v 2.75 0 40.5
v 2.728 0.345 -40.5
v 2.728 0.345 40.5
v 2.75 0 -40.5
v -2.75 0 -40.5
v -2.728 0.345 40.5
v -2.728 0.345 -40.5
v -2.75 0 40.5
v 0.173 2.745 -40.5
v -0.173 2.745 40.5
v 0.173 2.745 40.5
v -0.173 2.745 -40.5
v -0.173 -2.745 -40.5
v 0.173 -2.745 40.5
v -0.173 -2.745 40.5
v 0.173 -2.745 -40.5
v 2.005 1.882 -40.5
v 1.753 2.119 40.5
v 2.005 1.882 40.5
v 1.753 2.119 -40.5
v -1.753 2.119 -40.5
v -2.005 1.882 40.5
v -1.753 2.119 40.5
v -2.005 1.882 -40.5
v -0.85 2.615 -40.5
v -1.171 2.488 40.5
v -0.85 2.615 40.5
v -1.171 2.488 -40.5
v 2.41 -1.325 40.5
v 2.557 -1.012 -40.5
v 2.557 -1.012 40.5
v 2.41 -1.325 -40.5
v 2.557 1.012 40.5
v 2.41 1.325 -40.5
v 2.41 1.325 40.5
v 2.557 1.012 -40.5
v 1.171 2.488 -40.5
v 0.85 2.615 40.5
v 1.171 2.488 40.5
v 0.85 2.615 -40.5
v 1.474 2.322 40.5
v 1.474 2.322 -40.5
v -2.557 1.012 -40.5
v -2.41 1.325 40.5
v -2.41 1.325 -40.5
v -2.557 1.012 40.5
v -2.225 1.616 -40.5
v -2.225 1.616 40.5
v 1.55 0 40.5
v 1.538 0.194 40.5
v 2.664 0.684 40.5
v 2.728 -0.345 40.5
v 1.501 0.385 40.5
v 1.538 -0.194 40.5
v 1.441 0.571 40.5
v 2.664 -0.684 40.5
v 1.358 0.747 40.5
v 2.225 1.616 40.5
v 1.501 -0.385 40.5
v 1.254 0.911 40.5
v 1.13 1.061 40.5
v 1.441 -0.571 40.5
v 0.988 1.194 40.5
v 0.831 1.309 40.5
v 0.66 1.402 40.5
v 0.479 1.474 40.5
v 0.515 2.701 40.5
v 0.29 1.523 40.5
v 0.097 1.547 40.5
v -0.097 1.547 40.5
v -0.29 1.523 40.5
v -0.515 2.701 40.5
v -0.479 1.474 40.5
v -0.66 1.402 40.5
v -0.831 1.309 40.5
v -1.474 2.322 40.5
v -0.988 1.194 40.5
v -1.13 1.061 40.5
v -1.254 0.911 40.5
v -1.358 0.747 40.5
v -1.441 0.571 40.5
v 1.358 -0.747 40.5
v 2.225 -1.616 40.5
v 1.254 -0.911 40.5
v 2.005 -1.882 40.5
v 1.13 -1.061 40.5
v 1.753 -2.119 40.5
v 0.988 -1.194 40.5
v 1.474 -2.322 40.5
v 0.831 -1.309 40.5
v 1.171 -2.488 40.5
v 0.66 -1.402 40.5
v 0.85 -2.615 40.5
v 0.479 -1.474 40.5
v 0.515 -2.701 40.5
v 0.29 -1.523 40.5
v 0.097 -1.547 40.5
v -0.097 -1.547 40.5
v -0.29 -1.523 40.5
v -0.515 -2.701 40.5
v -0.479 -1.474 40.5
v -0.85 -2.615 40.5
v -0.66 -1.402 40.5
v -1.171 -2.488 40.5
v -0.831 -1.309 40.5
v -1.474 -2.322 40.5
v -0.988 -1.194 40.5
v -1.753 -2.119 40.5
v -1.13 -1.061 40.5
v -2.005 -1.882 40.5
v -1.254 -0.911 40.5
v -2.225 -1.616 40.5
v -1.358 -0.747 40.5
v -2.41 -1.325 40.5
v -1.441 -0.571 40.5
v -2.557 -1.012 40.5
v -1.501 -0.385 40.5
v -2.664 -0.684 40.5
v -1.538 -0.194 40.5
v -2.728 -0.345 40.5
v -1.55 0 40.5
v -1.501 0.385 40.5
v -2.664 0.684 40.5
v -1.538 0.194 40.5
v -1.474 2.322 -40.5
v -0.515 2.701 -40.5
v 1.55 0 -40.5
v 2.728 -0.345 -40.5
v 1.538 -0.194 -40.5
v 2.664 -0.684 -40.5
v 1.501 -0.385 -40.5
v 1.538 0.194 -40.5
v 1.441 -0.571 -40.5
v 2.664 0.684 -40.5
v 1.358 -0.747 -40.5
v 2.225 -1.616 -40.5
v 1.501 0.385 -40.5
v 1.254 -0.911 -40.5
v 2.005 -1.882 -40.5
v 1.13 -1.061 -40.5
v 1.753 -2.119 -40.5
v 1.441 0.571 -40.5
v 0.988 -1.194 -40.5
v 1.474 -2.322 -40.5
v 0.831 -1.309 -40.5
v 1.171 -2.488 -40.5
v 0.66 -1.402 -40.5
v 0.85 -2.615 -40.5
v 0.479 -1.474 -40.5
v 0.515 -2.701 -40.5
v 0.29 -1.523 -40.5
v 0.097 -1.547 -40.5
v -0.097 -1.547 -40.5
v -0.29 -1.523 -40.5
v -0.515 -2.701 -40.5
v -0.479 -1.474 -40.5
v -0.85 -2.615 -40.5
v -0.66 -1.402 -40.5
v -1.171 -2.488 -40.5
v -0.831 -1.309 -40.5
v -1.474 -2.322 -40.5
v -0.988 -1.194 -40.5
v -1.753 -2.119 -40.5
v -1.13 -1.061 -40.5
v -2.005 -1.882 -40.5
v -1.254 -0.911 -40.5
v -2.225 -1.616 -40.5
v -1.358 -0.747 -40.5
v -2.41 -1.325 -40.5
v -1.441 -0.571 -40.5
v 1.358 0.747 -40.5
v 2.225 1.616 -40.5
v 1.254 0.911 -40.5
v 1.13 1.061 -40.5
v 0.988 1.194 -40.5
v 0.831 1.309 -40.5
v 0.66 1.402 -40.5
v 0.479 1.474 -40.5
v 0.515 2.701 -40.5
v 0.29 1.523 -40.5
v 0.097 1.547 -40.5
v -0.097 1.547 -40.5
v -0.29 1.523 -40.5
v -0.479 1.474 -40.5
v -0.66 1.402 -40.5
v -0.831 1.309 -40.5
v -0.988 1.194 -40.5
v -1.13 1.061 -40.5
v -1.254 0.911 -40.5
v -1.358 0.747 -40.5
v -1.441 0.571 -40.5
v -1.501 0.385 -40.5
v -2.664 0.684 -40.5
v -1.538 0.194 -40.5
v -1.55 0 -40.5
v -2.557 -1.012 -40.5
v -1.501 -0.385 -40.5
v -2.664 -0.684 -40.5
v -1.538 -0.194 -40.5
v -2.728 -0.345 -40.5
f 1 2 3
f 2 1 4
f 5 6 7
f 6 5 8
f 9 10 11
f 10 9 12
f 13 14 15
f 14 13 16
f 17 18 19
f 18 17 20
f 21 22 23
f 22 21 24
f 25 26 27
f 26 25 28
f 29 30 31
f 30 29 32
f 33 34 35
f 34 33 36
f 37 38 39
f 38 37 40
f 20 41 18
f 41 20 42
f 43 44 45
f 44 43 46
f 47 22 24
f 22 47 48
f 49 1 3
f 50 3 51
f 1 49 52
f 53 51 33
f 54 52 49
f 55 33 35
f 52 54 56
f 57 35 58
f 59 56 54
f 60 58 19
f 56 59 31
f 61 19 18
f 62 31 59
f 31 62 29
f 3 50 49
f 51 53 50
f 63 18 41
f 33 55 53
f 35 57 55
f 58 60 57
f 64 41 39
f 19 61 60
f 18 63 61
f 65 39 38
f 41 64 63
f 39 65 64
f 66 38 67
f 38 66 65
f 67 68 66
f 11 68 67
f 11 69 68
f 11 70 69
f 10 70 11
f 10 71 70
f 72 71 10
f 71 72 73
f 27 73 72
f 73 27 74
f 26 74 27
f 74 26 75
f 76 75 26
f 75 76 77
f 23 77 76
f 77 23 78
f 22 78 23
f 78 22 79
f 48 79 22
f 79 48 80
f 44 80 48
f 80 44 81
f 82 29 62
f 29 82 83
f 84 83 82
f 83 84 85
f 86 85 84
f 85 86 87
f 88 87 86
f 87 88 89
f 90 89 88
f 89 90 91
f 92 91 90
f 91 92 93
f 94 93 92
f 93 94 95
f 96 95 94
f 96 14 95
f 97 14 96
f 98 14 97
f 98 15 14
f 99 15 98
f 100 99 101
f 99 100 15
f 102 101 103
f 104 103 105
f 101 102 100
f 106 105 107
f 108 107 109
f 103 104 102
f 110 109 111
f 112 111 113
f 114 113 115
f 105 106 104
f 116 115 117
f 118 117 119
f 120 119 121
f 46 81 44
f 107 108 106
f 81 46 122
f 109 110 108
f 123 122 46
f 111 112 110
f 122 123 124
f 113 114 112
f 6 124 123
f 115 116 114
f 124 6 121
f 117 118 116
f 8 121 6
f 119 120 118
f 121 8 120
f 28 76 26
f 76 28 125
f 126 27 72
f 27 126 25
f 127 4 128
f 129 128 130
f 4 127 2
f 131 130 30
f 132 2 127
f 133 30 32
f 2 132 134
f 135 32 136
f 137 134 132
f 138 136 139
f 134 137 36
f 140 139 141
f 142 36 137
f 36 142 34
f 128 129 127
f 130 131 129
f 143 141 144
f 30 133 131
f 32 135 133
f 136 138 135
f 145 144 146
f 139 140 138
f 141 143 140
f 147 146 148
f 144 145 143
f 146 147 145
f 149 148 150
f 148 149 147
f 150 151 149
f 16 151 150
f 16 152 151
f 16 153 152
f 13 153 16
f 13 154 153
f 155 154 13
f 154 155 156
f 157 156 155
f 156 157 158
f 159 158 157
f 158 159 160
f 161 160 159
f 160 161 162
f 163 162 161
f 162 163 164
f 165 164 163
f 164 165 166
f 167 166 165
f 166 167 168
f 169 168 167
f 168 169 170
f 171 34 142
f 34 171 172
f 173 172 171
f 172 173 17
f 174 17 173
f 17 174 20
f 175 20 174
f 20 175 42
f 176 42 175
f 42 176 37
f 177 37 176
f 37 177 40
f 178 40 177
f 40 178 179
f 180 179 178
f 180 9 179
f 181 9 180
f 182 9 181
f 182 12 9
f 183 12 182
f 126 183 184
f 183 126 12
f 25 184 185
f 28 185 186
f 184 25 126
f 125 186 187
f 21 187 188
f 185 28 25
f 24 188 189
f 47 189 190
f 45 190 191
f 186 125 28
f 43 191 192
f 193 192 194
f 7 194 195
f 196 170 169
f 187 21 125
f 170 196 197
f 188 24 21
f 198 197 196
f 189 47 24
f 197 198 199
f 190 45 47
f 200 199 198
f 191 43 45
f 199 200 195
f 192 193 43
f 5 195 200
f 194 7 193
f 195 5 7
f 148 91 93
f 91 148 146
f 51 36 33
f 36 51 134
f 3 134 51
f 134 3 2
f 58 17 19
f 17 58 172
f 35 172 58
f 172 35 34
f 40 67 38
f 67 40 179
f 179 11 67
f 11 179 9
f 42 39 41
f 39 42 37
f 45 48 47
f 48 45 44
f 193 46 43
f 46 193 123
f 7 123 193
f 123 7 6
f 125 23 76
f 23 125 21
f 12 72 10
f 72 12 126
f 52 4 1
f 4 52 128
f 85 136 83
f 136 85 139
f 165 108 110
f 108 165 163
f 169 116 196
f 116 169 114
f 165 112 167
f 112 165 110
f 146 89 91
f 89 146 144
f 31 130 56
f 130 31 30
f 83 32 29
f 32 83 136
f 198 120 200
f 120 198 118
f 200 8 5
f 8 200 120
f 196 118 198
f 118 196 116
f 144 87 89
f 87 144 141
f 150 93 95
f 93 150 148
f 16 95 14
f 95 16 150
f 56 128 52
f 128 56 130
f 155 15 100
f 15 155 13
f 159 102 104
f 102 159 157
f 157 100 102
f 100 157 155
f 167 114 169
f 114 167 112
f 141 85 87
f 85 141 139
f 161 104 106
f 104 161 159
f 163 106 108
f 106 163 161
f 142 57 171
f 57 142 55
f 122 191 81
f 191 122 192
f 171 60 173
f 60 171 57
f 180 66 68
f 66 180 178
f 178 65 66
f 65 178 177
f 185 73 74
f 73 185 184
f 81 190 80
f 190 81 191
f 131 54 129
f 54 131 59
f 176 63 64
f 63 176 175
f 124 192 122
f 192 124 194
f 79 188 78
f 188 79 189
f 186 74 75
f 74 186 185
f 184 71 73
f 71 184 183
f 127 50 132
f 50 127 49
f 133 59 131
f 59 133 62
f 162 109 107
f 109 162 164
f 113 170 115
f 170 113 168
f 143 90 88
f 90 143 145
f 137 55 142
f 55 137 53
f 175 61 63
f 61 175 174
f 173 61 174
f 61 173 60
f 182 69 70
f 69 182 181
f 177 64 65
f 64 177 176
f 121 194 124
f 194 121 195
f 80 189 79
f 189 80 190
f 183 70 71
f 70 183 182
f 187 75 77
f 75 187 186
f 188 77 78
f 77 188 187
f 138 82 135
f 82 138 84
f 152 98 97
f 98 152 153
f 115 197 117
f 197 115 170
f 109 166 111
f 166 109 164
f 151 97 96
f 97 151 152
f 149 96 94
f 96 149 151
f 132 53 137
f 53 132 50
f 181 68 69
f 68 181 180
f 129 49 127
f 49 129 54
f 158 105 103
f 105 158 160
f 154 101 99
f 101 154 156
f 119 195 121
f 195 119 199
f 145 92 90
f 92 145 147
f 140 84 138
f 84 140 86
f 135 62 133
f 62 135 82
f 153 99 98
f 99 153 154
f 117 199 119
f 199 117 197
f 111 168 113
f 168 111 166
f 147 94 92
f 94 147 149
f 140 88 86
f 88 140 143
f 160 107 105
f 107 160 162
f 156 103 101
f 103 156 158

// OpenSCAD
$fn = 50;


difference() {
	union() {
		translate(v = [0, 0, -40.5000000000]) {
			cylinder(h = 81, r = 2.7500000000);
		}
	}
	union() {
		translate(v = [0, 0, -100.0000000000]) {
			cylinder(h = 200, r = 1.5500000000);
		}
	}
}
